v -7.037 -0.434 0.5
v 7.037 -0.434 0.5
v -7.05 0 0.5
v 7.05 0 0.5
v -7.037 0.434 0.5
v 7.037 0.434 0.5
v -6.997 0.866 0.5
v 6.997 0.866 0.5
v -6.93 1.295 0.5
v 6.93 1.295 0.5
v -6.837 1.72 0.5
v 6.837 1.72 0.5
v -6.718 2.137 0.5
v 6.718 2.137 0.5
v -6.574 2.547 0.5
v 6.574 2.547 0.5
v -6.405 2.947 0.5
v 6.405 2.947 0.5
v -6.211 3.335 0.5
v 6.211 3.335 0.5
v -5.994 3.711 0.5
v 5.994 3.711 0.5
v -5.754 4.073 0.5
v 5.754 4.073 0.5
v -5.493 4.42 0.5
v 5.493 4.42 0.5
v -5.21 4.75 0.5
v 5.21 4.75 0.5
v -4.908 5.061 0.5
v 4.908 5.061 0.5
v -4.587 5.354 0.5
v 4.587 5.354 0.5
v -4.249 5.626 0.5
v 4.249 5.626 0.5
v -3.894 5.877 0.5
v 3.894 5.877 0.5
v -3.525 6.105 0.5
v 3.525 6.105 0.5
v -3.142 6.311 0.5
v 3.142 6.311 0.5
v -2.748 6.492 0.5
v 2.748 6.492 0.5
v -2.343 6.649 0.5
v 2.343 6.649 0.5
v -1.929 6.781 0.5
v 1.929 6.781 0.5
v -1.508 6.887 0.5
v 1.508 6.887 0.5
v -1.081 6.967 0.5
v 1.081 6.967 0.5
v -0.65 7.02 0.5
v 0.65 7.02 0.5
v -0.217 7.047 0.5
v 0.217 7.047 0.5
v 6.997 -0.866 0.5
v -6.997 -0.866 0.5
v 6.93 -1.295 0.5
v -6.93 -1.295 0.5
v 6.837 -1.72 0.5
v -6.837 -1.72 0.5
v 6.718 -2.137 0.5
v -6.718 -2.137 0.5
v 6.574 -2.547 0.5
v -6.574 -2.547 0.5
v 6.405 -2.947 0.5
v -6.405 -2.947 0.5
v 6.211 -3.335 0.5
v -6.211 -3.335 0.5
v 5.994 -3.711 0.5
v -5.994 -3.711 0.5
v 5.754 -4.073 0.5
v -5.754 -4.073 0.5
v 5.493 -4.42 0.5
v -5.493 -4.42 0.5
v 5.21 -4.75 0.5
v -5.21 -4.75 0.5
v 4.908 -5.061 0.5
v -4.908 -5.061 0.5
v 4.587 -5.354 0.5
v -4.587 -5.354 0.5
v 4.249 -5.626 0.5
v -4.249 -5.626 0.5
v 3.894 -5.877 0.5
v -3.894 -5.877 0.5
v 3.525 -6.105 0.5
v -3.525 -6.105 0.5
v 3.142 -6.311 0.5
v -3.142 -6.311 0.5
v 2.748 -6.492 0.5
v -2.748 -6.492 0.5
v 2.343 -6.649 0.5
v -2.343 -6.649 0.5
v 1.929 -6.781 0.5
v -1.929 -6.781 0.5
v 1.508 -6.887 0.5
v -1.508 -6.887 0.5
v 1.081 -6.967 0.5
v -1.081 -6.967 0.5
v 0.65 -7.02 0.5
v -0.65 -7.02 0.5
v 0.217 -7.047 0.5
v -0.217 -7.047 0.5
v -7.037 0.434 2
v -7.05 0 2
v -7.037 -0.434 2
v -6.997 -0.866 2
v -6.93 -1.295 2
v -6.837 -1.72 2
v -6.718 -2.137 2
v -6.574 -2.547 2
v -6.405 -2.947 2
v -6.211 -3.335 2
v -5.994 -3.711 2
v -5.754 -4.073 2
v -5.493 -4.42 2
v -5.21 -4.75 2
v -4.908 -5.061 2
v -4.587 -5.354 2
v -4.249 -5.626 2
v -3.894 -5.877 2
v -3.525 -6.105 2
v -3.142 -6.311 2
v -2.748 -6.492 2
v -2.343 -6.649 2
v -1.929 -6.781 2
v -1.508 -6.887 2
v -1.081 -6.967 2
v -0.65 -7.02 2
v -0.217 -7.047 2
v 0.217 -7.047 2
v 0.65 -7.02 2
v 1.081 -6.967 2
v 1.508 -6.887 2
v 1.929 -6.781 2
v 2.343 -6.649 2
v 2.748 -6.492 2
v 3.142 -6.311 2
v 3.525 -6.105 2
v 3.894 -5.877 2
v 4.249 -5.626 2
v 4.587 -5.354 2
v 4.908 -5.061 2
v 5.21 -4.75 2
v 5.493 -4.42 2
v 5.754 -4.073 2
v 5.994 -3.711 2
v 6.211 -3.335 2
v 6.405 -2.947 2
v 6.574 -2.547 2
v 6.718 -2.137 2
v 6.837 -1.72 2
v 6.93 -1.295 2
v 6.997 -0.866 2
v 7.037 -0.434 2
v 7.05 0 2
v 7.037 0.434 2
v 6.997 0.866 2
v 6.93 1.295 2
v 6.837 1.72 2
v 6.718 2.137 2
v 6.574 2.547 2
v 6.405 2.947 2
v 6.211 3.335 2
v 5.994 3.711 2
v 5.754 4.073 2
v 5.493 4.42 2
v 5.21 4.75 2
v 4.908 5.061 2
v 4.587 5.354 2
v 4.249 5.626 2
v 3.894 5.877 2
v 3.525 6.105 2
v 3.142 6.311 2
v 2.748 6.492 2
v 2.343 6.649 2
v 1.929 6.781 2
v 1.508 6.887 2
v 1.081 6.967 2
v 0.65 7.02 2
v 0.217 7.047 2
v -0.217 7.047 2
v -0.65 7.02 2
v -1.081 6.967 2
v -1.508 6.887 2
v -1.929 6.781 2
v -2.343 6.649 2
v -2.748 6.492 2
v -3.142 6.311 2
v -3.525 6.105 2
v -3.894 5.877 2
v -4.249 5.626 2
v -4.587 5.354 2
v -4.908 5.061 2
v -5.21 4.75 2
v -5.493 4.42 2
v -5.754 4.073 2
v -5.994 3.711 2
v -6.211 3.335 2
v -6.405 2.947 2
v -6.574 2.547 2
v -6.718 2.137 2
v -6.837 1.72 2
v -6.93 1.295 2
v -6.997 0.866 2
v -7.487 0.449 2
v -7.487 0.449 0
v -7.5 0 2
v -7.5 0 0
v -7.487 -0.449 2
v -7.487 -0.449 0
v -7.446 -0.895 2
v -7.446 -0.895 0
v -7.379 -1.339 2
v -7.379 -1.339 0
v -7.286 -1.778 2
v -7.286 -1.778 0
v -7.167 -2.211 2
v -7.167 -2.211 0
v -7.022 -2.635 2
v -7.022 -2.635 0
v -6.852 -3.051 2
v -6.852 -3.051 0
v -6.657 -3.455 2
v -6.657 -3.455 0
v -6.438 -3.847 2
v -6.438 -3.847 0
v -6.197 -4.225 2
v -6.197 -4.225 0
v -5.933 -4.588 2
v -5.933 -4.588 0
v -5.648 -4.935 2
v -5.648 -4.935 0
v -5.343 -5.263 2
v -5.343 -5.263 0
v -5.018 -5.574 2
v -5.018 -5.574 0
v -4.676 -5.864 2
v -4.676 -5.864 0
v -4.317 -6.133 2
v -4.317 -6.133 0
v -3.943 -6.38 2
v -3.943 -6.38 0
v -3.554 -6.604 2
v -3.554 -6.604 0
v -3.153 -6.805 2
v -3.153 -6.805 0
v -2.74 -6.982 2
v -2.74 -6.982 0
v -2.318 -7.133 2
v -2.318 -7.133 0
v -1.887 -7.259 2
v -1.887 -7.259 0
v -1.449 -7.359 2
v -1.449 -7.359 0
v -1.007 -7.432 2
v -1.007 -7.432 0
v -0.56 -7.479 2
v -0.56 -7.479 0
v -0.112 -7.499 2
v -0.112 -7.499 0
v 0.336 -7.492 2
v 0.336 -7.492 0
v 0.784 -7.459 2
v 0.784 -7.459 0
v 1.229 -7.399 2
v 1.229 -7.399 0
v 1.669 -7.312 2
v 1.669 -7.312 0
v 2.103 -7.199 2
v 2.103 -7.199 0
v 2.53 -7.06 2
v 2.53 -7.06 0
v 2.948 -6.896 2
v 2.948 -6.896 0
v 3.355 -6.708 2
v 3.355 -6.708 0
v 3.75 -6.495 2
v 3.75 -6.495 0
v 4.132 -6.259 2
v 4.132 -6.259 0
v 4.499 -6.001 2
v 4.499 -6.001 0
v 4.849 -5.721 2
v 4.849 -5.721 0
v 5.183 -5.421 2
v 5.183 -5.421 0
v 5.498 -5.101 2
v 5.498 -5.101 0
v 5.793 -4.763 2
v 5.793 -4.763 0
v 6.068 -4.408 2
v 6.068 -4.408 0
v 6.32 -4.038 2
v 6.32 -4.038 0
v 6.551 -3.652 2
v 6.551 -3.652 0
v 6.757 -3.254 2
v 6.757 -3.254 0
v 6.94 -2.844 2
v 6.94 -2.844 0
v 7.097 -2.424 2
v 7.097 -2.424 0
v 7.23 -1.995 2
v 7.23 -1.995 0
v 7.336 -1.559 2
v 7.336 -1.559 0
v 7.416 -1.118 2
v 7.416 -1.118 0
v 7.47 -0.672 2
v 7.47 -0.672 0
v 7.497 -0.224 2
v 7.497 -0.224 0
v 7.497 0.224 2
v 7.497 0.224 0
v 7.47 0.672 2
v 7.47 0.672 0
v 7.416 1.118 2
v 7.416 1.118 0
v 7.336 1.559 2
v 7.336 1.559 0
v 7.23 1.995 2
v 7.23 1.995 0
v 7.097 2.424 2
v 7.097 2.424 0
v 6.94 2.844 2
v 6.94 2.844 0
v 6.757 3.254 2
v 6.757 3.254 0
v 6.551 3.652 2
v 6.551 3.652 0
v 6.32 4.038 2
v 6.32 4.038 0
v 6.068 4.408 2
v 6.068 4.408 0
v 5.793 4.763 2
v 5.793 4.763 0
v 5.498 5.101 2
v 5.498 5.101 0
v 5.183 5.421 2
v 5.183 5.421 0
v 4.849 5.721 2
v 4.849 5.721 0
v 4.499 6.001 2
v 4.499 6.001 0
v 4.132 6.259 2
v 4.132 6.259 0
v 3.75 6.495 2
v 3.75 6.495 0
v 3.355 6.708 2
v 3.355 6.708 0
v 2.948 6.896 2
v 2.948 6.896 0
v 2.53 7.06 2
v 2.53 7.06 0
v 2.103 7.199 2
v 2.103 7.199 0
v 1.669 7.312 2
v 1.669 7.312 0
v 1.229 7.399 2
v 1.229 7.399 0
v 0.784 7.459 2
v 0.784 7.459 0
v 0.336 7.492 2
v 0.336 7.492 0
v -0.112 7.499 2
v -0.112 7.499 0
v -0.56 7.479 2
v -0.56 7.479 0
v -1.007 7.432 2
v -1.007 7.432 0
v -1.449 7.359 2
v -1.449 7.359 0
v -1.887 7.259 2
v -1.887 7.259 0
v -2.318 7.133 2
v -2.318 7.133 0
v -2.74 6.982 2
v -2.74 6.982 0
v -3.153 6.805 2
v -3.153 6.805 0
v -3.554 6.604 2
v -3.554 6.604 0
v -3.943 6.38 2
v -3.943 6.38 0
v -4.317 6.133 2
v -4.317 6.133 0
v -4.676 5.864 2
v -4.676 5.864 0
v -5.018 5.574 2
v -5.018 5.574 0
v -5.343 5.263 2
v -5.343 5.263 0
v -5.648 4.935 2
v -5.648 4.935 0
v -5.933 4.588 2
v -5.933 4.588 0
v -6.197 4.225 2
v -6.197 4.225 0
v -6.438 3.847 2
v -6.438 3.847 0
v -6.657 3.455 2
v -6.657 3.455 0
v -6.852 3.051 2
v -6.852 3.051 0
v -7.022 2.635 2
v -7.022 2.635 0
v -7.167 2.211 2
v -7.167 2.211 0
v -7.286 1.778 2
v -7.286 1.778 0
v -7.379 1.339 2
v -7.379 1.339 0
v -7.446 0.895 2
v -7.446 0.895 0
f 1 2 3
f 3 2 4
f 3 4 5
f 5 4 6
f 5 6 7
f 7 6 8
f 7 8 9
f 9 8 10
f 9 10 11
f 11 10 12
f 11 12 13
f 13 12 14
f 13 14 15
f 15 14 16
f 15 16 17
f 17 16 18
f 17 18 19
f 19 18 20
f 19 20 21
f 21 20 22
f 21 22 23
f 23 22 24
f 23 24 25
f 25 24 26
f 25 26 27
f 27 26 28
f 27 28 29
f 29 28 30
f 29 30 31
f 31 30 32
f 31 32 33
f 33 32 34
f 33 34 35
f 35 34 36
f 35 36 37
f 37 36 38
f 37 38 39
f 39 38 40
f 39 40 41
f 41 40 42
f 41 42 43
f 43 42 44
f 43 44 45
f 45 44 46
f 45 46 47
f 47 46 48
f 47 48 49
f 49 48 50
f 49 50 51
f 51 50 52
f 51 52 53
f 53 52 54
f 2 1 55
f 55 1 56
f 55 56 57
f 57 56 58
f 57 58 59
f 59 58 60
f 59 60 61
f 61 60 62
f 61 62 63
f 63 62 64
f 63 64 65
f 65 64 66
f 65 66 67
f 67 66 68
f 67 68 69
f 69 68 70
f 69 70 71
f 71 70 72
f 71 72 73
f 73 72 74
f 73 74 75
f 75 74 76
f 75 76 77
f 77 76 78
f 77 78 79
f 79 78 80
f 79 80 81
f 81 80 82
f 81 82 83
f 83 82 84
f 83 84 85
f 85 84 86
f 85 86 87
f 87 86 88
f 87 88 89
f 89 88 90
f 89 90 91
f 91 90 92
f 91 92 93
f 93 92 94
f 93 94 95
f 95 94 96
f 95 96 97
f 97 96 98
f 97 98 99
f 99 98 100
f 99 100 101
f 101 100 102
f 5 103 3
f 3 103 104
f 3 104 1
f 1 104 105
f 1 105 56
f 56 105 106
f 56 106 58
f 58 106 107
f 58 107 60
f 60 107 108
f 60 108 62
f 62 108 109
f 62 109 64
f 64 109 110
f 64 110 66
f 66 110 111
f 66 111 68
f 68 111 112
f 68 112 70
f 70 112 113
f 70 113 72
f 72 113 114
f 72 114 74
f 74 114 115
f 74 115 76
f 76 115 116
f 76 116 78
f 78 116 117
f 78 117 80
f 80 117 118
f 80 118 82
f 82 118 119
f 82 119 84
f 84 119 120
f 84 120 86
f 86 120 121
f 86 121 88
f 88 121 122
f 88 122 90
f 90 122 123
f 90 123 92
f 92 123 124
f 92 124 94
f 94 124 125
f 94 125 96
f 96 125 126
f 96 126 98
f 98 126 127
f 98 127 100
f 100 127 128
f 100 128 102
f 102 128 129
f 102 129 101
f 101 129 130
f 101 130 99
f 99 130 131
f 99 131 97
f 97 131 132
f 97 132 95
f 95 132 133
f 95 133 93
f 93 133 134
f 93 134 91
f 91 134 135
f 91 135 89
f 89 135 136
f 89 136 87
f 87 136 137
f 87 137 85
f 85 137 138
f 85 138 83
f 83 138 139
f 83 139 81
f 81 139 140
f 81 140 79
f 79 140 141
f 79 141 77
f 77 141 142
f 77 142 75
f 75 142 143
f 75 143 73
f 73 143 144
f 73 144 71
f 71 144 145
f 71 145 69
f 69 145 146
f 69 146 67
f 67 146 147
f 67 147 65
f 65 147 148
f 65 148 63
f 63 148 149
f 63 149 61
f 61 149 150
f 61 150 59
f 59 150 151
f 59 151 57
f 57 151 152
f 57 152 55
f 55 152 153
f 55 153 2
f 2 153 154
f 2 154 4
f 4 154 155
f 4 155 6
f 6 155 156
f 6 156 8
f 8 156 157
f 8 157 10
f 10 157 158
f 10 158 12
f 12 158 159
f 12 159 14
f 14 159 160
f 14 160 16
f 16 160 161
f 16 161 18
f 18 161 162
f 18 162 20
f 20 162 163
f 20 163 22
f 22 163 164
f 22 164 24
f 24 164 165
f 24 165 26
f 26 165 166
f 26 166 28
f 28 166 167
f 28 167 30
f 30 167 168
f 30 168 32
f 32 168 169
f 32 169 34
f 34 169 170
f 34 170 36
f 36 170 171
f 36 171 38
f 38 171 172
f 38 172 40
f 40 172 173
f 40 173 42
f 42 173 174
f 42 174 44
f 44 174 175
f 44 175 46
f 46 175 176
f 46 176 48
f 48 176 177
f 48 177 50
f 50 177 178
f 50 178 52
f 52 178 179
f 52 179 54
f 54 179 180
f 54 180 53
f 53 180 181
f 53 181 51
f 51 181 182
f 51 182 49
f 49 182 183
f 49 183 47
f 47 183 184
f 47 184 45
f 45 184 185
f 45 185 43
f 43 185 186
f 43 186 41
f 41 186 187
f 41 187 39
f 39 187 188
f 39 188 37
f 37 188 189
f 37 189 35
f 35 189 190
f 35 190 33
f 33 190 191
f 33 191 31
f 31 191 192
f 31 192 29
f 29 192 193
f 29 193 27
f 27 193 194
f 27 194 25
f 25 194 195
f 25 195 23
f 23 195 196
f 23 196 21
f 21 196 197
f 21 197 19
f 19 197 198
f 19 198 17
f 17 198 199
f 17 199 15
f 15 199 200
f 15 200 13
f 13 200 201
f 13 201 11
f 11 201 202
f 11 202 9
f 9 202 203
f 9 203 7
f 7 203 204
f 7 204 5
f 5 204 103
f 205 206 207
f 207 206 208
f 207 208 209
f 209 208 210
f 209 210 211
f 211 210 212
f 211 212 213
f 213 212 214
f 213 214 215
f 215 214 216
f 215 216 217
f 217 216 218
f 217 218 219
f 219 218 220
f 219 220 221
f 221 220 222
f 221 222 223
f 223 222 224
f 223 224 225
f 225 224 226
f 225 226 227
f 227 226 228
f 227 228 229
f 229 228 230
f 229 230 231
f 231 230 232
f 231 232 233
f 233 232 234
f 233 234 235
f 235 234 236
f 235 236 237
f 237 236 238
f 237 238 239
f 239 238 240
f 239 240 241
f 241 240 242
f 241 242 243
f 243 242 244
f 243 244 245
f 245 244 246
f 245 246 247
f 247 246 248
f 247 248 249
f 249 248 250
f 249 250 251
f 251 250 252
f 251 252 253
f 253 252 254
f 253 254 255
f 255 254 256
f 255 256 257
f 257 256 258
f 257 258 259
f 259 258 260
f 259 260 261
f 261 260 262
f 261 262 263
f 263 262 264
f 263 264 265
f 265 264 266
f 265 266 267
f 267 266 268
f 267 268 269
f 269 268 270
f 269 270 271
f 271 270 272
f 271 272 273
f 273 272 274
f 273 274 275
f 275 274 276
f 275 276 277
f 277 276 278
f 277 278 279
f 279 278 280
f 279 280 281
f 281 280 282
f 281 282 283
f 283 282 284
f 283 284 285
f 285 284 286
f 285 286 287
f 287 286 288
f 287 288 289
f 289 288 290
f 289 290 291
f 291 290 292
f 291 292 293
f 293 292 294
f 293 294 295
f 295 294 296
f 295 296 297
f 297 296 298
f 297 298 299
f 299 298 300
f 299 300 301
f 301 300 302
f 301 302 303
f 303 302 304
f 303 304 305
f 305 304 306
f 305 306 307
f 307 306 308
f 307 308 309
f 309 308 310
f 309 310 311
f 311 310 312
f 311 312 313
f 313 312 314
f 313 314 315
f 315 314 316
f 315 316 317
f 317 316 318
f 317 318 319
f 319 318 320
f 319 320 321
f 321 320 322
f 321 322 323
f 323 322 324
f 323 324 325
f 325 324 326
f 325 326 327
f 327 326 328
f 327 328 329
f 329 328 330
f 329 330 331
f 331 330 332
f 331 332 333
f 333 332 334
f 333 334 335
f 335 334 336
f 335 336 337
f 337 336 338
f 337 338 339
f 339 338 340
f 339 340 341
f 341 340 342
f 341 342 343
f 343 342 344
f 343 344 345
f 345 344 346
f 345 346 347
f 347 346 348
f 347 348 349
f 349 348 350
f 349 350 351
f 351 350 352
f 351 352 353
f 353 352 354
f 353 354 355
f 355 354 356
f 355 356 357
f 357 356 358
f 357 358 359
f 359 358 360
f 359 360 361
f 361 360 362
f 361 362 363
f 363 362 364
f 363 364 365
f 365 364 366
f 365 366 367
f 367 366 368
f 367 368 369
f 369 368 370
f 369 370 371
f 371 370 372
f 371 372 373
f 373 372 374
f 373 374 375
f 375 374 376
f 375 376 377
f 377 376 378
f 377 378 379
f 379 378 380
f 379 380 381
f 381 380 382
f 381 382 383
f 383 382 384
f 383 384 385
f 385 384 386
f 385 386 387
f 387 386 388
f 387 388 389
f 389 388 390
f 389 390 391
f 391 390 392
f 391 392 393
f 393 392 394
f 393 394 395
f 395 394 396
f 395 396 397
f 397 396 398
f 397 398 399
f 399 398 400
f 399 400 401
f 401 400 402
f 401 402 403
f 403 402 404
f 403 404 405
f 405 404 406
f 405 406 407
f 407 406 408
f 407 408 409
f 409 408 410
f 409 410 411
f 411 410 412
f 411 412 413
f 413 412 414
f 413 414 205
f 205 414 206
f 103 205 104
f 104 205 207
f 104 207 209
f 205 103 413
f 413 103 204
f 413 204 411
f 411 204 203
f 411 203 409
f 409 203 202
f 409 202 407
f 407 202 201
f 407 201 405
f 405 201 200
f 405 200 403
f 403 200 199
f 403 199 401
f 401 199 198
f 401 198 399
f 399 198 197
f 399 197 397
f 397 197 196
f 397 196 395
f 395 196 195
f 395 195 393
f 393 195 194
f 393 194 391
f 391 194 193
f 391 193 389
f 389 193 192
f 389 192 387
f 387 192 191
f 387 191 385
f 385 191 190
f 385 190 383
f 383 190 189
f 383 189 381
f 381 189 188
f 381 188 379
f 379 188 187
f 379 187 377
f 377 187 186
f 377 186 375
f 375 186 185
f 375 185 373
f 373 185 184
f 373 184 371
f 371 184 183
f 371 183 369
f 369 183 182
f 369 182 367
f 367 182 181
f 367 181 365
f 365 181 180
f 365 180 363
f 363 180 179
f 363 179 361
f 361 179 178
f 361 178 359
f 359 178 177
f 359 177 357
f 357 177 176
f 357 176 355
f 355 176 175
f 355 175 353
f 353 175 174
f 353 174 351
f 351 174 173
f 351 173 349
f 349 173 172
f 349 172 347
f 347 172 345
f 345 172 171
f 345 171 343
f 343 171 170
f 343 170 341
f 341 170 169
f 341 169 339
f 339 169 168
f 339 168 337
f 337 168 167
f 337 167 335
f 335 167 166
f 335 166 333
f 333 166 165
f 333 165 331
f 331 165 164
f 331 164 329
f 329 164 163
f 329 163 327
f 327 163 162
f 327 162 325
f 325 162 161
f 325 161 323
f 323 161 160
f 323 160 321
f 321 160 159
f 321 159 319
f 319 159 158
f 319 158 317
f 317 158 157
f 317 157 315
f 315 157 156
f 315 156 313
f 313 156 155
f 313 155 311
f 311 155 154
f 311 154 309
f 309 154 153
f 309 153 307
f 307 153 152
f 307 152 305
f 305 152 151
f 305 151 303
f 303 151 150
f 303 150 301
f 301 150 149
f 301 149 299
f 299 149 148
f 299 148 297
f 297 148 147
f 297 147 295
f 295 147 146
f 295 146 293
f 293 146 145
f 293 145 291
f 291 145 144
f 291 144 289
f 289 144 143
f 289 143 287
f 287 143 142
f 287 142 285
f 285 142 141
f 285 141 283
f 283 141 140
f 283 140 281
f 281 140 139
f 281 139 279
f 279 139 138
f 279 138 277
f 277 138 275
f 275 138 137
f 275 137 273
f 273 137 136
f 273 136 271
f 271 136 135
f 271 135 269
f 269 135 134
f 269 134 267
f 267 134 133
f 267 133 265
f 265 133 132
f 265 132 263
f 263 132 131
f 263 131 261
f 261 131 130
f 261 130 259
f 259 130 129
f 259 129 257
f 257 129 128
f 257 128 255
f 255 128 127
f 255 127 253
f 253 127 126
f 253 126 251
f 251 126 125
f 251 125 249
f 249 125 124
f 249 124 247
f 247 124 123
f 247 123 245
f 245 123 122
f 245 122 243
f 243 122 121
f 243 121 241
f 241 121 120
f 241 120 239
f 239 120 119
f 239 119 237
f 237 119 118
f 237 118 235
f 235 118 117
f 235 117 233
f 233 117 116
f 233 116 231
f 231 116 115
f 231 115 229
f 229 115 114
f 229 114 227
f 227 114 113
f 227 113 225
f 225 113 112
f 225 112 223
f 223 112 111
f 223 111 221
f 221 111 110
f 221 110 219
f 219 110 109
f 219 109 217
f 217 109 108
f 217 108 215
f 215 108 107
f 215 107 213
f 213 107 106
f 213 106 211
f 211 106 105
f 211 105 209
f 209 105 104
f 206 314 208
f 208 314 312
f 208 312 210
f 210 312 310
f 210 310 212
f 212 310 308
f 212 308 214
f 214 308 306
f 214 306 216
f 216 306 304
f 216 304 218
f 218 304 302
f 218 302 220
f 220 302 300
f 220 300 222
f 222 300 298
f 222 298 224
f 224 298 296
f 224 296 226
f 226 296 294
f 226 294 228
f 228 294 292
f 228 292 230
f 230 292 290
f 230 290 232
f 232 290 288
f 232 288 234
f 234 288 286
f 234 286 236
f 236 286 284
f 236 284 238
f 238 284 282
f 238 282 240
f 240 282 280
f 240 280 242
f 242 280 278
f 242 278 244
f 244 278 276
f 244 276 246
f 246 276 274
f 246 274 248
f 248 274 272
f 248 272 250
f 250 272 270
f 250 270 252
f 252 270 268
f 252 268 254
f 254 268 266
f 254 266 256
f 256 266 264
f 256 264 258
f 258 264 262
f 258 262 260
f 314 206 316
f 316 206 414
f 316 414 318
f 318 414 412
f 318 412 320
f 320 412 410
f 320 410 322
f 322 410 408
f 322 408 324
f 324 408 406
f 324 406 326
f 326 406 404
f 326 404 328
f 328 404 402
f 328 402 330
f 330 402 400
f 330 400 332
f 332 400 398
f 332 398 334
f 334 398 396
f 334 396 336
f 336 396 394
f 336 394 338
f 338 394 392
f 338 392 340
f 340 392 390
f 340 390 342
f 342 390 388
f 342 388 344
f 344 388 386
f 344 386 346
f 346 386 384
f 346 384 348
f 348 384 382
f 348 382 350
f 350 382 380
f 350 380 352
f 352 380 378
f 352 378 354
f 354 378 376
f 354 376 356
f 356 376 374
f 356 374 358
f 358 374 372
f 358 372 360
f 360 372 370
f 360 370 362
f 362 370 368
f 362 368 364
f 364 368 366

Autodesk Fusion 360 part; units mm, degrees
sketch "Sketch1" plane through (0, 0, 0) normal (0, 0, 1) x (1, 0, 0) in component "Component"
  line L0 (3.8891, 2.4749) -> (5.2486, 3.8344)
  circle A0 centre (0, 0) radius 6.5
  line L1 (-2.4749, 3.8891) -> (-3.8344, 5.2486)
  circle A1 centre (0, 0) radius 7.05
  line L2 (3.182, 3.182) -> (2.4749, 3.8891)
  line L3 (-3.182, 3.182) -> (-3.8891, 2.4749)
  line L4 (-3.182, -3.182) -> (-2.4749, -3.8891)
  line L5 (-3.8891, -2.4749) -> (-5.2486, -3.8344)
  line L6 (2.4749, -3.8891) -> (3.8344, -5.2486)
  line L7 (-2.4749, -3.8891) -> (-3.8344, -5.2486)
  line L8 (3.182, -3.182) -> (2.4749, -3.8891)
  line L9 (-3.182, -3.182) -> (-3.8891, -2.4749)
  circle A2 centre (0, 0) radius 7.5
  line L10 (3.182, 3.182) -> (3.8891, 2.4749)
  line L11 (-3.8891, 2.4749) -> (-5.2486, 3.8344)
  line L12 (-3.182, 3.182) -> (-2.4749, 3.8891)
  line L13 (3.8891, -2.4749) -> (5.2486, -3.8344)
  line L14 (3.182, -3.182) -> (3.8891, -2.4749)
  line L15 (2.4749, 3.8891) -> (3.8344, 5.2486)
  circle A3 centre (0, 0) radius 1.5
  dimension "d1" = 15
  dimension "d2" = 14.1
  dimension "d3" = 13
  dimension "d8" = 3
extrude "Extrude1" add sketch "Sketch1" along normal blind 2 contours A2 in component "Component"
extrude "Extrude2" add sketch "Sketch1" along normal blind 0.5 contours L0 A0 L2 L10 L15 | L0 A0 L1 L2 L3 L4 L5 L6 L7 L8 L9 L10 L11 L12 L13 L14 L15 | A0 L6 L8 L13 L14 | A0 L1 L3 L11 L12 | A0 L4 L5 L7 L9 | A1 | A3 in component "Component"
extrude "Extrude3" add sketch "Sketch1" along normal blind 30.5 contours A3 in component "Component"
extrude "Extrude4" cut 1 faces at (0.567, -0.5383, 30.5) along direction (0, 0, -1) blind 30 in component "Component"
extrude "Extrude5" add sketch "Sketch1" along normal blind 30.5 contours A3 in component "Component"
extrude "Extrude6" cut 1 faces at (0.567, -0.5383, 30.5) along direction (0, 0, -1) blind 30 in component "Component"
component "Component" placed x (1, 0, 0) y (0, 1, 0) z (0, 0, 1) at (0, 0, 0)
